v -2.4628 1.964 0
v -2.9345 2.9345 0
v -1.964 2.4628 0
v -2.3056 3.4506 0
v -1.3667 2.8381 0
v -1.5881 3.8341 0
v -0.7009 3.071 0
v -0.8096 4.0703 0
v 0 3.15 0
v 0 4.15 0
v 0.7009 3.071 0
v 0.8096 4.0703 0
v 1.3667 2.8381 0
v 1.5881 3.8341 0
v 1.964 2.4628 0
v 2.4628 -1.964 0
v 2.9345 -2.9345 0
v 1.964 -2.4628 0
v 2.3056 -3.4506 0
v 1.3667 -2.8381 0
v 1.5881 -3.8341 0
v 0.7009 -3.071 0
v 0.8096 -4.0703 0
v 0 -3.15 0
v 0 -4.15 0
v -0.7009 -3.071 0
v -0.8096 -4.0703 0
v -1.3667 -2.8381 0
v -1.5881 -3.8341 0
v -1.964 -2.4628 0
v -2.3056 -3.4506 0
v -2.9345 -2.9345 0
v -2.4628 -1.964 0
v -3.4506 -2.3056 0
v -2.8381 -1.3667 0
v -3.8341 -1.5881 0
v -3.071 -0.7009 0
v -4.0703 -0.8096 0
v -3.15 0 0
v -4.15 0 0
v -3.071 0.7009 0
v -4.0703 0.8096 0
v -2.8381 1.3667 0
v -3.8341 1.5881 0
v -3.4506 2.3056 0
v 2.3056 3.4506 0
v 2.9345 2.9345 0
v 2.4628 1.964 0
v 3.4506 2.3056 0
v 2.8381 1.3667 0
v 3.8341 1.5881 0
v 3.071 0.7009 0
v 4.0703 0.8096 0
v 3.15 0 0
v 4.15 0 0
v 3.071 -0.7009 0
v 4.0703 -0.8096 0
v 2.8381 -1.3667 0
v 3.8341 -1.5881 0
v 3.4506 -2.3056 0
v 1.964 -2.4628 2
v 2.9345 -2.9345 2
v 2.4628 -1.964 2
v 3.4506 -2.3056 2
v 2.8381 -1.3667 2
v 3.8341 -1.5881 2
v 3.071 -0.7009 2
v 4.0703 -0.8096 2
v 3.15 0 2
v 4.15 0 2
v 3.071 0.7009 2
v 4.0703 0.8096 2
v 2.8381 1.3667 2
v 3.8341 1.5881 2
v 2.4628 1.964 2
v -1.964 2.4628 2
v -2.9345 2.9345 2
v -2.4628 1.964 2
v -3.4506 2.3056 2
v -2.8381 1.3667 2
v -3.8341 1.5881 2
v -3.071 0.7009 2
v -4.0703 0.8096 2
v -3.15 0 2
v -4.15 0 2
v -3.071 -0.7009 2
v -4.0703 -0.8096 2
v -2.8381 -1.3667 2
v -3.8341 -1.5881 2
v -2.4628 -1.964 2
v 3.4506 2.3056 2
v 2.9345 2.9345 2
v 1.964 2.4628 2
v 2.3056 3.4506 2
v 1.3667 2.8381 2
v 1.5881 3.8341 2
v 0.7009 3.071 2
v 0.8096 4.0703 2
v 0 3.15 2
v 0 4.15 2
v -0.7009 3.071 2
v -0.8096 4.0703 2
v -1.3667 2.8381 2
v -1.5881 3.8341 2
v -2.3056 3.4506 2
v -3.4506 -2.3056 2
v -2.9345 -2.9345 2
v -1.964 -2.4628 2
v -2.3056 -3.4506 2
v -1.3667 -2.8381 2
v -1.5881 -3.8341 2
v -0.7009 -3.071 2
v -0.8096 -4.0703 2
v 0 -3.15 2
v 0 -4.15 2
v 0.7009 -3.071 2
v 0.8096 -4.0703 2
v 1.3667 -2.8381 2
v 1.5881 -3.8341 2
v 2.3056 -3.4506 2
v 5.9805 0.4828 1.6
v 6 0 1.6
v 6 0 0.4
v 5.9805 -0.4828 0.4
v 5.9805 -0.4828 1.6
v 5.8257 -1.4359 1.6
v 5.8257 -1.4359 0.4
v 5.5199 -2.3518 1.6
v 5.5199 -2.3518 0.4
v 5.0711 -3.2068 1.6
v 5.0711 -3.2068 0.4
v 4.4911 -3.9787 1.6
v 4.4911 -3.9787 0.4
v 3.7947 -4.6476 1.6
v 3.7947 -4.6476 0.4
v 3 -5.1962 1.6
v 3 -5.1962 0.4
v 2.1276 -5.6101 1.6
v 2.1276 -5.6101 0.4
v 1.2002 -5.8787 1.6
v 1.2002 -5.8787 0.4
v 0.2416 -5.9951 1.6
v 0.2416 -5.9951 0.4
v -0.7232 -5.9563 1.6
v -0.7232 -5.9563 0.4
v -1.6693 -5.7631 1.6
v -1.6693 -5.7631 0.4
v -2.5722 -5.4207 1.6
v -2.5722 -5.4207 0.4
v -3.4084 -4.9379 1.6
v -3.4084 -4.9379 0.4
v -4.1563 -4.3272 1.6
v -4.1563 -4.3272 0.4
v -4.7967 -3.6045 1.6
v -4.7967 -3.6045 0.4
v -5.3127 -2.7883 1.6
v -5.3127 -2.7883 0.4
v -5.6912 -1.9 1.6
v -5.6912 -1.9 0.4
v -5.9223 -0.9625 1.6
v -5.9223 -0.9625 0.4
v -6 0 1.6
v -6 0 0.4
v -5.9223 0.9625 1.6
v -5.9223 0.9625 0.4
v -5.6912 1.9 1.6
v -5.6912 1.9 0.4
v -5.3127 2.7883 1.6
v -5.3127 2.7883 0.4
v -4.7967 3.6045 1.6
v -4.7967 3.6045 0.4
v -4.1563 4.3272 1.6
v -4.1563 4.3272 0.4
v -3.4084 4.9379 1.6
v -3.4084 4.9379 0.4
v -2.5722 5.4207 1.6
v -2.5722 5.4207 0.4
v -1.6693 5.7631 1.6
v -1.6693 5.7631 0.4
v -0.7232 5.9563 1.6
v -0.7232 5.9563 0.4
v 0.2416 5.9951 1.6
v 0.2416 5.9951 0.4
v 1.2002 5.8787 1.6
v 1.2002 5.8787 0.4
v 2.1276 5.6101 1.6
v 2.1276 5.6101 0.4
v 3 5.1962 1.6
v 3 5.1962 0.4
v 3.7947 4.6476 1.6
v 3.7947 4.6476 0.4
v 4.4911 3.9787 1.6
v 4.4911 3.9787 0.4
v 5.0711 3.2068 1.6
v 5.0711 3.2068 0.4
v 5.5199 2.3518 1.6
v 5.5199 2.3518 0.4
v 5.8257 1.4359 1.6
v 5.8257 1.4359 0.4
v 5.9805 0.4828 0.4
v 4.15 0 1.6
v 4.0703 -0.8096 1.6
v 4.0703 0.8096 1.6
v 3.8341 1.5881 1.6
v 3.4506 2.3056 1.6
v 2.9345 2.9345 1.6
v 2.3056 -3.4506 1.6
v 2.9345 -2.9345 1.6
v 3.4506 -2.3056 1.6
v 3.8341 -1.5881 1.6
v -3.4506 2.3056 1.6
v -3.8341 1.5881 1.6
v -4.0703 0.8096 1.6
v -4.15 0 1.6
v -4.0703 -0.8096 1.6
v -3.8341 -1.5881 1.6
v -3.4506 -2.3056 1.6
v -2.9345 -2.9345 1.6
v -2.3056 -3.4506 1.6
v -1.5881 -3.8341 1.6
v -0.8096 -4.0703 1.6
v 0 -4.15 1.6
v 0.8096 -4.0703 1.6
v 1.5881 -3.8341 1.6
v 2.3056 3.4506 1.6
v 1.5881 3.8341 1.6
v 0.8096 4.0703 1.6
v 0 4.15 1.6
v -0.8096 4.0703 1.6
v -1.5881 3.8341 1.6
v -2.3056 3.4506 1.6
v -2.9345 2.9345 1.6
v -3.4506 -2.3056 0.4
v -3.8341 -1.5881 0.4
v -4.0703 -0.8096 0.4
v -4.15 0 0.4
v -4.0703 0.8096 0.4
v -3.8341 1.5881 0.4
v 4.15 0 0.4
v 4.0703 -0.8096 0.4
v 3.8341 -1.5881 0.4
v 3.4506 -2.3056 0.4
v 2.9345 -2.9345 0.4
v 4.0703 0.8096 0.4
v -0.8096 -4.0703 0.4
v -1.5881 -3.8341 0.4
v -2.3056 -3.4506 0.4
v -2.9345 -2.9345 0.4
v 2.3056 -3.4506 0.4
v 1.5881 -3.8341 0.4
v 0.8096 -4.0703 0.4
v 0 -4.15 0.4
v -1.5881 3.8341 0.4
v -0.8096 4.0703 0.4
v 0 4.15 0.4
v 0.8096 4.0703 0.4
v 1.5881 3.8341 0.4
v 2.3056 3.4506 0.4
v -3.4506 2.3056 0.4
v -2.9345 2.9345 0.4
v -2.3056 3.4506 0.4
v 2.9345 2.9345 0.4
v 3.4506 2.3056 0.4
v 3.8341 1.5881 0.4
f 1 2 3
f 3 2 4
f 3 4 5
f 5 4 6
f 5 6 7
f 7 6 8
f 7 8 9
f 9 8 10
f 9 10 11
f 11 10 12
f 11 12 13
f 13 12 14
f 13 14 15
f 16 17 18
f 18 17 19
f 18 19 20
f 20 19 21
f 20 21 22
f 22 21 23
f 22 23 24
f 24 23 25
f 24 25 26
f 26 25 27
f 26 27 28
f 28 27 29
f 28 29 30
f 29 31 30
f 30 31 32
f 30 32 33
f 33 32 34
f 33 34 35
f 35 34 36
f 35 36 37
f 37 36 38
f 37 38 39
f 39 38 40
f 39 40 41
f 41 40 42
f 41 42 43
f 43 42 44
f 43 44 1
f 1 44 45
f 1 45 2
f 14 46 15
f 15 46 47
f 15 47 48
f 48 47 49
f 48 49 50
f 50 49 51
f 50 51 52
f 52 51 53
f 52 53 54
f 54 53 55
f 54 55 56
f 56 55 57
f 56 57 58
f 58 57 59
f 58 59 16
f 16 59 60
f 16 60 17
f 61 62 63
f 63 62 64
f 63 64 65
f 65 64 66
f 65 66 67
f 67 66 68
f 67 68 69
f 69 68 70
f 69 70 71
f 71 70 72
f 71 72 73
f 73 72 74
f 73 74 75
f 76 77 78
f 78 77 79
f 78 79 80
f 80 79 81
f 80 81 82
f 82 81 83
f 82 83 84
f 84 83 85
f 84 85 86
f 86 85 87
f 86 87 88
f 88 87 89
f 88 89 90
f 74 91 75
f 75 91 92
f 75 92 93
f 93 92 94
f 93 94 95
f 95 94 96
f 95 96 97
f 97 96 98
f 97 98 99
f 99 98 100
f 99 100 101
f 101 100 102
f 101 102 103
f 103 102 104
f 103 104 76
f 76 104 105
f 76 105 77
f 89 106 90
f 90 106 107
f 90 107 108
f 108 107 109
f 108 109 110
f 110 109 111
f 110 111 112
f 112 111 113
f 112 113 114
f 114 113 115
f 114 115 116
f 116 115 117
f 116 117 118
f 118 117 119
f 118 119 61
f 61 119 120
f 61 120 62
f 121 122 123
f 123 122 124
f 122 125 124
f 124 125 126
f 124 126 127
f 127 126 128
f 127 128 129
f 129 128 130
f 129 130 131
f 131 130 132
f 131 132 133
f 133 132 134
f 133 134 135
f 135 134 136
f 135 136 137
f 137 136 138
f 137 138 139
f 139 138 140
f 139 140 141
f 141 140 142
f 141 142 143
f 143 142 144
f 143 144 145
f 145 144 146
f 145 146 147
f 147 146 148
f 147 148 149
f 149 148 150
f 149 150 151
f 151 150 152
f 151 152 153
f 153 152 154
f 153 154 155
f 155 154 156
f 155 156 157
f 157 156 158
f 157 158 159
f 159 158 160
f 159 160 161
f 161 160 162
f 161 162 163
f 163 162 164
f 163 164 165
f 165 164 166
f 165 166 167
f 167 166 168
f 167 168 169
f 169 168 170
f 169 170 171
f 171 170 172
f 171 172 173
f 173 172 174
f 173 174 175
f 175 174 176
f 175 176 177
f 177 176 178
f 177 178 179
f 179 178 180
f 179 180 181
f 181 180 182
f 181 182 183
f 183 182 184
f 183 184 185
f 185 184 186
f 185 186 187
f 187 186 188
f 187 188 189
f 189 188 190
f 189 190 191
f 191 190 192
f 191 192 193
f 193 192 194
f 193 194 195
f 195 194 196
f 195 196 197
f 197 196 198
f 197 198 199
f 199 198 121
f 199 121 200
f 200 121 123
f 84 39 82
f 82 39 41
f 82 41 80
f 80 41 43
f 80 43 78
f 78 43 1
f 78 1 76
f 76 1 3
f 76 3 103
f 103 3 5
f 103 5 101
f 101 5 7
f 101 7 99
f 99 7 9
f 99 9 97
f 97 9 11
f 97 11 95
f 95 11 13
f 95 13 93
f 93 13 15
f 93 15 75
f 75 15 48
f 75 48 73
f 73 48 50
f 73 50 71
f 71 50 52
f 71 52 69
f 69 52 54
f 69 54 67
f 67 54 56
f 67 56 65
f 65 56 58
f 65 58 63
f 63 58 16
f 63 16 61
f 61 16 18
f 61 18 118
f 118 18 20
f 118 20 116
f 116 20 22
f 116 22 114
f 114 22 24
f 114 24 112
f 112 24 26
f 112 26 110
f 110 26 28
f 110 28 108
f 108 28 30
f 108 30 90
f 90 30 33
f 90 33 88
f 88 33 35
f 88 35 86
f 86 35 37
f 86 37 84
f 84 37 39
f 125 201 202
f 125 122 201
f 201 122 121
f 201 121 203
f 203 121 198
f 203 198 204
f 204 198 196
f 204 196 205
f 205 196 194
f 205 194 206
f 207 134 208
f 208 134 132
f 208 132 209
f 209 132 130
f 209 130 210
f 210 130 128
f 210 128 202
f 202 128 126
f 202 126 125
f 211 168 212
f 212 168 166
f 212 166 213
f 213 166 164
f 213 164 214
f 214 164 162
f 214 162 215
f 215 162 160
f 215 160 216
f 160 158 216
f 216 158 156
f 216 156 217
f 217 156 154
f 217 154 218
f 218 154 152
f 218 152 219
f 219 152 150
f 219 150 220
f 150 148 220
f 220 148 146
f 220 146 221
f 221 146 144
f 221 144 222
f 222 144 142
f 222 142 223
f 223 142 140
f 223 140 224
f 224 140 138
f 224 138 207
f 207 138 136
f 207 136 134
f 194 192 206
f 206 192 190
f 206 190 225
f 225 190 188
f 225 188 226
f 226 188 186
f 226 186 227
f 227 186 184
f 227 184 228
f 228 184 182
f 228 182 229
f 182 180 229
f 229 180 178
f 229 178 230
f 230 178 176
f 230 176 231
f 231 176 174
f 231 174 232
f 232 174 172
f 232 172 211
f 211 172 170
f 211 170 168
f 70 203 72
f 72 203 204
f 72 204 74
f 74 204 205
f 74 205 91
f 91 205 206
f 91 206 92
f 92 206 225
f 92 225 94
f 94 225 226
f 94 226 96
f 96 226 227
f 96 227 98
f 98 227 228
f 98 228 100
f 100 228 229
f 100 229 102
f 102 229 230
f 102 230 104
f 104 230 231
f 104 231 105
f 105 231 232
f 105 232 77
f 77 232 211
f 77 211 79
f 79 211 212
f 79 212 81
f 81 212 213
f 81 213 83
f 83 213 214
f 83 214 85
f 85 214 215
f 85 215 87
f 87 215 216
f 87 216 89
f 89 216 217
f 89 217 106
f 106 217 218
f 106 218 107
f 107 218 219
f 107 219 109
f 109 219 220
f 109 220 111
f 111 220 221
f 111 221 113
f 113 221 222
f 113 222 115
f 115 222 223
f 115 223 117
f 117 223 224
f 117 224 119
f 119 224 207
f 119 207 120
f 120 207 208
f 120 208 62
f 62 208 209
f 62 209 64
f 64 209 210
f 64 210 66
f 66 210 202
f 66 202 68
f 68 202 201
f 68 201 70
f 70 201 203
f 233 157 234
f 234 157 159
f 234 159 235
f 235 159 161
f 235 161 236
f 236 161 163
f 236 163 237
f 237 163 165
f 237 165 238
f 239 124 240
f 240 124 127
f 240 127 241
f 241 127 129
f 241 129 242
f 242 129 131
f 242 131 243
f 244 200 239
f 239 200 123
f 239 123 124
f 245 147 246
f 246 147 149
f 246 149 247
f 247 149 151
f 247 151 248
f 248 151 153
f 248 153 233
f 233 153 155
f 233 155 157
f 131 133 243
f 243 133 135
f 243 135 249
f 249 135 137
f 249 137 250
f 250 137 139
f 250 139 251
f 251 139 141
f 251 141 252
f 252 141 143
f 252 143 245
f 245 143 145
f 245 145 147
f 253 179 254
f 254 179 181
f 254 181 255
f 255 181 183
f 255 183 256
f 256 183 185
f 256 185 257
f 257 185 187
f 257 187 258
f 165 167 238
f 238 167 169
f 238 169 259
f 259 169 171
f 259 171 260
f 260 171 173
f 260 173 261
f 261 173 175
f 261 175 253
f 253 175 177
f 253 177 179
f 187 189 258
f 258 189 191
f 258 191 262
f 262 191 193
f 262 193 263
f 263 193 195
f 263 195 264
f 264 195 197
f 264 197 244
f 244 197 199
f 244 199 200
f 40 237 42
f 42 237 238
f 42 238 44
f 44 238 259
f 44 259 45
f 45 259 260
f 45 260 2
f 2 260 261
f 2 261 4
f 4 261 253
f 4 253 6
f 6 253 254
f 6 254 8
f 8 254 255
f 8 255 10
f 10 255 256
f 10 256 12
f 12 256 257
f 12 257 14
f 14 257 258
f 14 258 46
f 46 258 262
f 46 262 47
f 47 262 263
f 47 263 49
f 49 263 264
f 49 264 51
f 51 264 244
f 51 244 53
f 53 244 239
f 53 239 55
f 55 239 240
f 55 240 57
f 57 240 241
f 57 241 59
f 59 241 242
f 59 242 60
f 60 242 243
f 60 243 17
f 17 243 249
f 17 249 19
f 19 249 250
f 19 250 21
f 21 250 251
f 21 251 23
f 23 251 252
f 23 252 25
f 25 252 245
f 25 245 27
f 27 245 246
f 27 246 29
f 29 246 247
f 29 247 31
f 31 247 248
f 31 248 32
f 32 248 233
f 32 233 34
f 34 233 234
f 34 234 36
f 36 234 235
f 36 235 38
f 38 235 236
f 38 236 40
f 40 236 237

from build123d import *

# Parameters (mm, degrees)
SKETCH_1_R          = 6
SKETCH_1_R_2        = 3.15
EXTRUDE_1_DEPTH     = 2
CUT_EXTRUDE_START   = -0.4
SKETCH_2_R          = 6
SKETCH_2_R_2        = 4.15
CUT_EXTRUDE_1_DEPTH = 0.4
CUT_EXTRUDE_START_2 = -2
SKETCH_2_2_R        = 6
SKETCH_2_2_R_2      = 4.15
CUT_EXTRUDE_2_DEPTH = 0.4


with BuildPart() as part:
    # ｽｹｯﾁ1 → ﾎﾞｽ - 押し出し1 (new body)
    with BuildSketch(Plane.XY):
        Circle(SKETCH_1_R)
        Circle(SKETCH_1_R_2, mode=Mode.SUBTRACT)
    extrude(amount=EXTRUDE_1_DEPTH)

    # ｽｹｯﾁ2 → ｶｯﾄ - 押し出し1 (cut)
    with BuildSketch(Plane.XY.offset(2).offset(CUT_EXTRUDE_START)):
        Circle(SKETCH_2_R)
        Circle(SKETCH_2_R_2, mode=Mode.SUBTRACT)
    extrude(amount=CUT_EXTRUDE_1_DEPTH, mode=Mode.SUBTRACT)

    # ｽｹｯﾁ2<2> → ｶｯﾄ - 押し出し2 (cut)
    with BuildSketch(Plane.XY.offset(2).offset(CUT_EXTRUDE_START_2)):
        Circle(SKETCH_2_2_R)
        Circle(SKETCH_2_2_R_2, mode=Mode.SUBTRACT)
    extrude(amount=CUT_EXTRUDE_2_DEPTH, mode=Mode.SUBTRACT)


solid = part.part
